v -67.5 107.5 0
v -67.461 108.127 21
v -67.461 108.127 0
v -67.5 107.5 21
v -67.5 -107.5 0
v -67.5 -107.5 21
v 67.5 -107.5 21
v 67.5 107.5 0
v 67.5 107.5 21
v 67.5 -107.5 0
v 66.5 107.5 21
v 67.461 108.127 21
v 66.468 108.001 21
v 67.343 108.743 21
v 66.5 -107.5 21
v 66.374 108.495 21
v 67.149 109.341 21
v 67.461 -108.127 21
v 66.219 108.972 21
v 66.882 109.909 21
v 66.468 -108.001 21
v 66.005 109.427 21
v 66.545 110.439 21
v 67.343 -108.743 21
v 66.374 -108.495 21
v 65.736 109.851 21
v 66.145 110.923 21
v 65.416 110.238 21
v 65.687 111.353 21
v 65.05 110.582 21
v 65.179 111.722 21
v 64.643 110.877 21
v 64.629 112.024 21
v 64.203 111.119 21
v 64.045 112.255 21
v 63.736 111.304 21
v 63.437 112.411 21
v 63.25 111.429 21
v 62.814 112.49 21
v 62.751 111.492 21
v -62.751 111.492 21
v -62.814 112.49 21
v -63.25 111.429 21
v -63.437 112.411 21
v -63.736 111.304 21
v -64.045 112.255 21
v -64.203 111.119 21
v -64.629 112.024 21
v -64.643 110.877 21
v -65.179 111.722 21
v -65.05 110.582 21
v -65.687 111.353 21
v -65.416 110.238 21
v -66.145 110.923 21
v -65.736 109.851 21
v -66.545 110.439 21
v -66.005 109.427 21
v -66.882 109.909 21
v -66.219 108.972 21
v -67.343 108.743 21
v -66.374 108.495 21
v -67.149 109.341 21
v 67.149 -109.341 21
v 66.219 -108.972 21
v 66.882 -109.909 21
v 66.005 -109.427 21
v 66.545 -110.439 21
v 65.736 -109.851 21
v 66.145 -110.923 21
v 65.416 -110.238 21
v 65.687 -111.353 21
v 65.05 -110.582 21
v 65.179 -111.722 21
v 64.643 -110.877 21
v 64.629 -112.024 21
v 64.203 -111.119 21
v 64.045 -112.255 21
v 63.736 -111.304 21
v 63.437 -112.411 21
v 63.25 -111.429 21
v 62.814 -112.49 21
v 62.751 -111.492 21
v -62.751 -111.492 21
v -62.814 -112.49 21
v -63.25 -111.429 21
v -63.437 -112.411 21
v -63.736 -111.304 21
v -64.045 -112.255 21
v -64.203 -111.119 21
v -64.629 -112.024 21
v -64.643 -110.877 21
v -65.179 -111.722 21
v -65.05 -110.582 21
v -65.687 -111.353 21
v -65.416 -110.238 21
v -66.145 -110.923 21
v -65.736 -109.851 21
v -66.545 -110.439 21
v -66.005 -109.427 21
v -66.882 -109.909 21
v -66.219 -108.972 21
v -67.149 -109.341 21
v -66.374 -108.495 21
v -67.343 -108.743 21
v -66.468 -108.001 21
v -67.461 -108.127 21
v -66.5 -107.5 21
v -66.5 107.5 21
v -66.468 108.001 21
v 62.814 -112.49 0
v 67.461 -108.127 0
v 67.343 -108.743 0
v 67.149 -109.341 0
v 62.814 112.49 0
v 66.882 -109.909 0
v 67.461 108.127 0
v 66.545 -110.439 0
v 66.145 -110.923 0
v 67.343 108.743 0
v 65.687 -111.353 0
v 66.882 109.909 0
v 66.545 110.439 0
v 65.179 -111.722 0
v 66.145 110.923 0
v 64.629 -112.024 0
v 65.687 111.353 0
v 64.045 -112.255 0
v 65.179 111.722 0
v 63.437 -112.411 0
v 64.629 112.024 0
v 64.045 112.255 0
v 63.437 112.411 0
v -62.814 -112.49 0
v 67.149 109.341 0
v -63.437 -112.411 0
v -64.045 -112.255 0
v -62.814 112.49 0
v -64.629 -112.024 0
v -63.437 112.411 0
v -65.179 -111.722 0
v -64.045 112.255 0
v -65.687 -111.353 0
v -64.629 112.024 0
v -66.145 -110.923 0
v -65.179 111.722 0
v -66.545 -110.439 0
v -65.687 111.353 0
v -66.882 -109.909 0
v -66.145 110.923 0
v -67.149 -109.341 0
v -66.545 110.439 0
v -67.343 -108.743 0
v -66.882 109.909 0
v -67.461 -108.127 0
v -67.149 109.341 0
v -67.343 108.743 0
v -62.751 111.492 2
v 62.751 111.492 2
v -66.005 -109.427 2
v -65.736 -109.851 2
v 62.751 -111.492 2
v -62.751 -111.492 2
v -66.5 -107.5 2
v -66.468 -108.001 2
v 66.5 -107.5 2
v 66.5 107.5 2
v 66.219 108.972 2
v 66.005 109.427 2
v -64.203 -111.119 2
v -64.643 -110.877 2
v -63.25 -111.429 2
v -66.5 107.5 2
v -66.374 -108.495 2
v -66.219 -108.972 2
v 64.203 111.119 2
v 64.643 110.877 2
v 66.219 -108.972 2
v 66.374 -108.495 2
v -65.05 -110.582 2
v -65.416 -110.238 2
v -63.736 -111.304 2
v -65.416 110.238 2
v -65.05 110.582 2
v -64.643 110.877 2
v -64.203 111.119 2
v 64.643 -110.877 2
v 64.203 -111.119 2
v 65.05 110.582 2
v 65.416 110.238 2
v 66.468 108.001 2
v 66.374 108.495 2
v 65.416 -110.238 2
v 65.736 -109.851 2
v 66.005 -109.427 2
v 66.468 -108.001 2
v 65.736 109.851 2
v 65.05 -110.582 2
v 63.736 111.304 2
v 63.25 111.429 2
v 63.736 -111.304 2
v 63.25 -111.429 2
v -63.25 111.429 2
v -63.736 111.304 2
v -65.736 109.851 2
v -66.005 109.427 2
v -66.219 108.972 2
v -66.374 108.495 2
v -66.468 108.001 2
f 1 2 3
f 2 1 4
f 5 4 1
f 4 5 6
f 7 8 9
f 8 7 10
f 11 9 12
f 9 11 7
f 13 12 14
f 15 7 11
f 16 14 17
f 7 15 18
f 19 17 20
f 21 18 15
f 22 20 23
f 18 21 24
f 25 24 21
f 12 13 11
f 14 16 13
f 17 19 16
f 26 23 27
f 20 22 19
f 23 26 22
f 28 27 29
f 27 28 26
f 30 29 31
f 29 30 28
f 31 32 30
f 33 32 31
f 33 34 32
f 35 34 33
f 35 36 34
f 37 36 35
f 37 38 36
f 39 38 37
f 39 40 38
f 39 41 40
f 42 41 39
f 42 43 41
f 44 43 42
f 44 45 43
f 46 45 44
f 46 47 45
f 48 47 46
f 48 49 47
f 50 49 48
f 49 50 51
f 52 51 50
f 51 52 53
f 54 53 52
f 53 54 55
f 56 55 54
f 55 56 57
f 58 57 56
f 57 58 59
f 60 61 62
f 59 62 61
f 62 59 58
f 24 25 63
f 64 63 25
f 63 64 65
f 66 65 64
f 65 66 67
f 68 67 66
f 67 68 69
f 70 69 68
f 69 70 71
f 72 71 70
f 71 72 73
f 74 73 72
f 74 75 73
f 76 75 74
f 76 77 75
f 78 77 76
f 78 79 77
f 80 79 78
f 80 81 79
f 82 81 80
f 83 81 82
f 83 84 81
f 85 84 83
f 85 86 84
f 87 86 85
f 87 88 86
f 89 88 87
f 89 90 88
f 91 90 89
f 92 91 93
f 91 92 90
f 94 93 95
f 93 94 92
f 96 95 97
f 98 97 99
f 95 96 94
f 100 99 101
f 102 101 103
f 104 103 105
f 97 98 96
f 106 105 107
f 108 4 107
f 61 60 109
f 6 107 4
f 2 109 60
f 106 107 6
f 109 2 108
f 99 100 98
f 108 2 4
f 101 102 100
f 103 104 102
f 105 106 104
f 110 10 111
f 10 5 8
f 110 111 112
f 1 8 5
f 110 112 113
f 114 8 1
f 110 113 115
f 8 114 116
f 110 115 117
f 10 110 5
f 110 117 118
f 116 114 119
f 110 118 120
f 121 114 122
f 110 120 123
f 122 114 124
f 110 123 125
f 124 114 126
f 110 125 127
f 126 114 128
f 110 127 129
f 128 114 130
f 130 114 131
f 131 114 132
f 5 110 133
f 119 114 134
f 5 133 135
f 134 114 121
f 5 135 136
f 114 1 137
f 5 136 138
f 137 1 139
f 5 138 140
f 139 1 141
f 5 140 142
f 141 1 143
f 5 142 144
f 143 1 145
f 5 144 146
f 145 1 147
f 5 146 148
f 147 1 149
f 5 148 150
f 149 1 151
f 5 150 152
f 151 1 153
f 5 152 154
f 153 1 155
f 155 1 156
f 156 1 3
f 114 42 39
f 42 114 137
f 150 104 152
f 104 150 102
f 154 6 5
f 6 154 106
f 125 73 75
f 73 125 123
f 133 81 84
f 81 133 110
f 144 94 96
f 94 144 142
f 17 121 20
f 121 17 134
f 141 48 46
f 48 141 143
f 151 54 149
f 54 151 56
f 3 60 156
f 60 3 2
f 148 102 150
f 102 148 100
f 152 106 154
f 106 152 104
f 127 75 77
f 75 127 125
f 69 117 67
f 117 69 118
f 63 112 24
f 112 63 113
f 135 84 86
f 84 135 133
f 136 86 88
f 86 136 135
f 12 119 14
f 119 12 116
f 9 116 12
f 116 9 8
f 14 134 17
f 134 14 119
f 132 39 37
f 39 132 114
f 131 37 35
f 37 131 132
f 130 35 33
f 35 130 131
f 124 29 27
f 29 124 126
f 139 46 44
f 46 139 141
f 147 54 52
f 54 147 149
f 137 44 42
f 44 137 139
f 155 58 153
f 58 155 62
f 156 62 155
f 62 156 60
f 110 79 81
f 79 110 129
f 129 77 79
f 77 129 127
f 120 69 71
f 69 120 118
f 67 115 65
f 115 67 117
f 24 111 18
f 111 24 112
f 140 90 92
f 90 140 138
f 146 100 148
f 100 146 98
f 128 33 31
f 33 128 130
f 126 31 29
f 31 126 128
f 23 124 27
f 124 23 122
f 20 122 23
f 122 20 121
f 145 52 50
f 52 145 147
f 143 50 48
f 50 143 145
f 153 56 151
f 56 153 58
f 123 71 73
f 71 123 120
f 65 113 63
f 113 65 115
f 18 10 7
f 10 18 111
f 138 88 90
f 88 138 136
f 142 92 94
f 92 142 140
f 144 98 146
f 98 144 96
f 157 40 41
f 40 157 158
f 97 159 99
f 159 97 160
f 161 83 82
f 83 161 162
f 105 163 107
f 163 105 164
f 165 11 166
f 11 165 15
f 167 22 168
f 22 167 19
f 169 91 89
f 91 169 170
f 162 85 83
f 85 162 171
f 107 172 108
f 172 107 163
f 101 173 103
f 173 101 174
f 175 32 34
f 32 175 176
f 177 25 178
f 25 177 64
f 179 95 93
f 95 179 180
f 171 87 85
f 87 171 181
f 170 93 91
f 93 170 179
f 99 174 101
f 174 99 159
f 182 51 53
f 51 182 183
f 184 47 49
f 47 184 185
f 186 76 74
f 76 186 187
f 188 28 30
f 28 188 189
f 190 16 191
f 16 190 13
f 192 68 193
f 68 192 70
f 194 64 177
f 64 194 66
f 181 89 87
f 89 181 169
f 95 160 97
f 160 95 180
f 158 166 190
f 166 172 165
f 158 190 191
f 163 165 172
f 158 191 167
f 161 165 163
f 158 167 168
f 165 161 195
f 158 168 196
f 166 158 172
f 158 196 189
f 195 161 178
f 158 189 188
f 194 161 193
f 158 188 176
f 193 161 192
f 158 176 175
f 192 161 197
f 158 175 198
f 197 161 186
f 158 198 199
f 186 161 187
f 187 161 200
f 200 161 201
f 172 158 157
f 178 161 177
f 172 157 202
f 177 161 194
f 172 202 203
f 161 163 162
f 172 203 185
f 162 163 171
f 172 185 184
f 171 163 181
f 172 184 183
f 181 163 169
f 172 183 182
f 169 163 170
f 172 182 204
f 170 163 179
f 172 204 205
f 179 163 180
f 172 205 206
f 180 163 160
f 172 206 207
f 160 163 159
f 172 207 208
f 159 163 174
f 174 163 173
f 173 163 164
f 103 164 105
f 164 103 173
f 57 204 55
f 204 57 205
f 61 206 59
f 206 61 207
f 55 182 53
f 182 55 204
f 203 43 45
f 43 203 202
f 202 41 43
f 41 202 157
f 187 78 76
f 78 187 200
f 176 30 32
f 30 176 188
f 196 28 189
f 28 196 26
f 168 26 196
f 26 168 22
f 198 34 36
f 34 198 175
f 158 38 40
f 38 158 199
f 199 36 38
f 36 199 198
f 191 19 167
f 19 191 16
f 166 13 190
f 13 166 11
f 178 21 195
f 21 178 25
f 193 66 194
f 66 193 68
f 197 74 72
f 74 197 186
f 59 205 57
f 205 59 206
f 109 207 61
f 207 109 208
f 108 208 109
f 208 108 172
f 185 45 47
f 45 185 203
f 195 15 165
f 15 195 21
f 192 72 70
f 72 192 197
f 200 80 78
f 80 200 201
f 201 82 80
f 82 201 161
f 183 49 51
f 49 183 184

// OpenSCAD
$fn = 50;


difference() {
	union() {
		hull() {
			translate(v = [-62.5000000000, 107.5000000000, 0]) {
				cylinder(h = 21, r = 5);
			}
			translate(v = [62.5000000000, 107.5000000000, 0]) {
				cylinder(h = 21, r = 5);
			}
			translate(v = [-62.5000000000, -107.5000000000, 0]) {
				cylinder(h = 21, r = 5);
			}
			translate(v = [62.5000000000, -107.5000000000, 0]) {
				cylinder(h = 21, r = 5);
			}
		}
	}
	union() {
		translate(v = [0, 0, 2]) {
			hull() {
				translate(v = [-62.5000000000, 107.5000000000, 0]) {
					cylinder(h = 19, r = 4);
				}
				translate(v = [62.5000000000, 107.5000000000, 0]) {
					cylinder(h = 19, r = 4);
				}
				translate(v = [-62.5000000000, -107.5000000000, 0]) {
					cylinder(h = 19, r = 4);
				}
				translate(v = [62.5000000000, -107.5000000000, 0]) {
					cylinder(h = 19, r = 4);
				}
			}
		}
	}
}
